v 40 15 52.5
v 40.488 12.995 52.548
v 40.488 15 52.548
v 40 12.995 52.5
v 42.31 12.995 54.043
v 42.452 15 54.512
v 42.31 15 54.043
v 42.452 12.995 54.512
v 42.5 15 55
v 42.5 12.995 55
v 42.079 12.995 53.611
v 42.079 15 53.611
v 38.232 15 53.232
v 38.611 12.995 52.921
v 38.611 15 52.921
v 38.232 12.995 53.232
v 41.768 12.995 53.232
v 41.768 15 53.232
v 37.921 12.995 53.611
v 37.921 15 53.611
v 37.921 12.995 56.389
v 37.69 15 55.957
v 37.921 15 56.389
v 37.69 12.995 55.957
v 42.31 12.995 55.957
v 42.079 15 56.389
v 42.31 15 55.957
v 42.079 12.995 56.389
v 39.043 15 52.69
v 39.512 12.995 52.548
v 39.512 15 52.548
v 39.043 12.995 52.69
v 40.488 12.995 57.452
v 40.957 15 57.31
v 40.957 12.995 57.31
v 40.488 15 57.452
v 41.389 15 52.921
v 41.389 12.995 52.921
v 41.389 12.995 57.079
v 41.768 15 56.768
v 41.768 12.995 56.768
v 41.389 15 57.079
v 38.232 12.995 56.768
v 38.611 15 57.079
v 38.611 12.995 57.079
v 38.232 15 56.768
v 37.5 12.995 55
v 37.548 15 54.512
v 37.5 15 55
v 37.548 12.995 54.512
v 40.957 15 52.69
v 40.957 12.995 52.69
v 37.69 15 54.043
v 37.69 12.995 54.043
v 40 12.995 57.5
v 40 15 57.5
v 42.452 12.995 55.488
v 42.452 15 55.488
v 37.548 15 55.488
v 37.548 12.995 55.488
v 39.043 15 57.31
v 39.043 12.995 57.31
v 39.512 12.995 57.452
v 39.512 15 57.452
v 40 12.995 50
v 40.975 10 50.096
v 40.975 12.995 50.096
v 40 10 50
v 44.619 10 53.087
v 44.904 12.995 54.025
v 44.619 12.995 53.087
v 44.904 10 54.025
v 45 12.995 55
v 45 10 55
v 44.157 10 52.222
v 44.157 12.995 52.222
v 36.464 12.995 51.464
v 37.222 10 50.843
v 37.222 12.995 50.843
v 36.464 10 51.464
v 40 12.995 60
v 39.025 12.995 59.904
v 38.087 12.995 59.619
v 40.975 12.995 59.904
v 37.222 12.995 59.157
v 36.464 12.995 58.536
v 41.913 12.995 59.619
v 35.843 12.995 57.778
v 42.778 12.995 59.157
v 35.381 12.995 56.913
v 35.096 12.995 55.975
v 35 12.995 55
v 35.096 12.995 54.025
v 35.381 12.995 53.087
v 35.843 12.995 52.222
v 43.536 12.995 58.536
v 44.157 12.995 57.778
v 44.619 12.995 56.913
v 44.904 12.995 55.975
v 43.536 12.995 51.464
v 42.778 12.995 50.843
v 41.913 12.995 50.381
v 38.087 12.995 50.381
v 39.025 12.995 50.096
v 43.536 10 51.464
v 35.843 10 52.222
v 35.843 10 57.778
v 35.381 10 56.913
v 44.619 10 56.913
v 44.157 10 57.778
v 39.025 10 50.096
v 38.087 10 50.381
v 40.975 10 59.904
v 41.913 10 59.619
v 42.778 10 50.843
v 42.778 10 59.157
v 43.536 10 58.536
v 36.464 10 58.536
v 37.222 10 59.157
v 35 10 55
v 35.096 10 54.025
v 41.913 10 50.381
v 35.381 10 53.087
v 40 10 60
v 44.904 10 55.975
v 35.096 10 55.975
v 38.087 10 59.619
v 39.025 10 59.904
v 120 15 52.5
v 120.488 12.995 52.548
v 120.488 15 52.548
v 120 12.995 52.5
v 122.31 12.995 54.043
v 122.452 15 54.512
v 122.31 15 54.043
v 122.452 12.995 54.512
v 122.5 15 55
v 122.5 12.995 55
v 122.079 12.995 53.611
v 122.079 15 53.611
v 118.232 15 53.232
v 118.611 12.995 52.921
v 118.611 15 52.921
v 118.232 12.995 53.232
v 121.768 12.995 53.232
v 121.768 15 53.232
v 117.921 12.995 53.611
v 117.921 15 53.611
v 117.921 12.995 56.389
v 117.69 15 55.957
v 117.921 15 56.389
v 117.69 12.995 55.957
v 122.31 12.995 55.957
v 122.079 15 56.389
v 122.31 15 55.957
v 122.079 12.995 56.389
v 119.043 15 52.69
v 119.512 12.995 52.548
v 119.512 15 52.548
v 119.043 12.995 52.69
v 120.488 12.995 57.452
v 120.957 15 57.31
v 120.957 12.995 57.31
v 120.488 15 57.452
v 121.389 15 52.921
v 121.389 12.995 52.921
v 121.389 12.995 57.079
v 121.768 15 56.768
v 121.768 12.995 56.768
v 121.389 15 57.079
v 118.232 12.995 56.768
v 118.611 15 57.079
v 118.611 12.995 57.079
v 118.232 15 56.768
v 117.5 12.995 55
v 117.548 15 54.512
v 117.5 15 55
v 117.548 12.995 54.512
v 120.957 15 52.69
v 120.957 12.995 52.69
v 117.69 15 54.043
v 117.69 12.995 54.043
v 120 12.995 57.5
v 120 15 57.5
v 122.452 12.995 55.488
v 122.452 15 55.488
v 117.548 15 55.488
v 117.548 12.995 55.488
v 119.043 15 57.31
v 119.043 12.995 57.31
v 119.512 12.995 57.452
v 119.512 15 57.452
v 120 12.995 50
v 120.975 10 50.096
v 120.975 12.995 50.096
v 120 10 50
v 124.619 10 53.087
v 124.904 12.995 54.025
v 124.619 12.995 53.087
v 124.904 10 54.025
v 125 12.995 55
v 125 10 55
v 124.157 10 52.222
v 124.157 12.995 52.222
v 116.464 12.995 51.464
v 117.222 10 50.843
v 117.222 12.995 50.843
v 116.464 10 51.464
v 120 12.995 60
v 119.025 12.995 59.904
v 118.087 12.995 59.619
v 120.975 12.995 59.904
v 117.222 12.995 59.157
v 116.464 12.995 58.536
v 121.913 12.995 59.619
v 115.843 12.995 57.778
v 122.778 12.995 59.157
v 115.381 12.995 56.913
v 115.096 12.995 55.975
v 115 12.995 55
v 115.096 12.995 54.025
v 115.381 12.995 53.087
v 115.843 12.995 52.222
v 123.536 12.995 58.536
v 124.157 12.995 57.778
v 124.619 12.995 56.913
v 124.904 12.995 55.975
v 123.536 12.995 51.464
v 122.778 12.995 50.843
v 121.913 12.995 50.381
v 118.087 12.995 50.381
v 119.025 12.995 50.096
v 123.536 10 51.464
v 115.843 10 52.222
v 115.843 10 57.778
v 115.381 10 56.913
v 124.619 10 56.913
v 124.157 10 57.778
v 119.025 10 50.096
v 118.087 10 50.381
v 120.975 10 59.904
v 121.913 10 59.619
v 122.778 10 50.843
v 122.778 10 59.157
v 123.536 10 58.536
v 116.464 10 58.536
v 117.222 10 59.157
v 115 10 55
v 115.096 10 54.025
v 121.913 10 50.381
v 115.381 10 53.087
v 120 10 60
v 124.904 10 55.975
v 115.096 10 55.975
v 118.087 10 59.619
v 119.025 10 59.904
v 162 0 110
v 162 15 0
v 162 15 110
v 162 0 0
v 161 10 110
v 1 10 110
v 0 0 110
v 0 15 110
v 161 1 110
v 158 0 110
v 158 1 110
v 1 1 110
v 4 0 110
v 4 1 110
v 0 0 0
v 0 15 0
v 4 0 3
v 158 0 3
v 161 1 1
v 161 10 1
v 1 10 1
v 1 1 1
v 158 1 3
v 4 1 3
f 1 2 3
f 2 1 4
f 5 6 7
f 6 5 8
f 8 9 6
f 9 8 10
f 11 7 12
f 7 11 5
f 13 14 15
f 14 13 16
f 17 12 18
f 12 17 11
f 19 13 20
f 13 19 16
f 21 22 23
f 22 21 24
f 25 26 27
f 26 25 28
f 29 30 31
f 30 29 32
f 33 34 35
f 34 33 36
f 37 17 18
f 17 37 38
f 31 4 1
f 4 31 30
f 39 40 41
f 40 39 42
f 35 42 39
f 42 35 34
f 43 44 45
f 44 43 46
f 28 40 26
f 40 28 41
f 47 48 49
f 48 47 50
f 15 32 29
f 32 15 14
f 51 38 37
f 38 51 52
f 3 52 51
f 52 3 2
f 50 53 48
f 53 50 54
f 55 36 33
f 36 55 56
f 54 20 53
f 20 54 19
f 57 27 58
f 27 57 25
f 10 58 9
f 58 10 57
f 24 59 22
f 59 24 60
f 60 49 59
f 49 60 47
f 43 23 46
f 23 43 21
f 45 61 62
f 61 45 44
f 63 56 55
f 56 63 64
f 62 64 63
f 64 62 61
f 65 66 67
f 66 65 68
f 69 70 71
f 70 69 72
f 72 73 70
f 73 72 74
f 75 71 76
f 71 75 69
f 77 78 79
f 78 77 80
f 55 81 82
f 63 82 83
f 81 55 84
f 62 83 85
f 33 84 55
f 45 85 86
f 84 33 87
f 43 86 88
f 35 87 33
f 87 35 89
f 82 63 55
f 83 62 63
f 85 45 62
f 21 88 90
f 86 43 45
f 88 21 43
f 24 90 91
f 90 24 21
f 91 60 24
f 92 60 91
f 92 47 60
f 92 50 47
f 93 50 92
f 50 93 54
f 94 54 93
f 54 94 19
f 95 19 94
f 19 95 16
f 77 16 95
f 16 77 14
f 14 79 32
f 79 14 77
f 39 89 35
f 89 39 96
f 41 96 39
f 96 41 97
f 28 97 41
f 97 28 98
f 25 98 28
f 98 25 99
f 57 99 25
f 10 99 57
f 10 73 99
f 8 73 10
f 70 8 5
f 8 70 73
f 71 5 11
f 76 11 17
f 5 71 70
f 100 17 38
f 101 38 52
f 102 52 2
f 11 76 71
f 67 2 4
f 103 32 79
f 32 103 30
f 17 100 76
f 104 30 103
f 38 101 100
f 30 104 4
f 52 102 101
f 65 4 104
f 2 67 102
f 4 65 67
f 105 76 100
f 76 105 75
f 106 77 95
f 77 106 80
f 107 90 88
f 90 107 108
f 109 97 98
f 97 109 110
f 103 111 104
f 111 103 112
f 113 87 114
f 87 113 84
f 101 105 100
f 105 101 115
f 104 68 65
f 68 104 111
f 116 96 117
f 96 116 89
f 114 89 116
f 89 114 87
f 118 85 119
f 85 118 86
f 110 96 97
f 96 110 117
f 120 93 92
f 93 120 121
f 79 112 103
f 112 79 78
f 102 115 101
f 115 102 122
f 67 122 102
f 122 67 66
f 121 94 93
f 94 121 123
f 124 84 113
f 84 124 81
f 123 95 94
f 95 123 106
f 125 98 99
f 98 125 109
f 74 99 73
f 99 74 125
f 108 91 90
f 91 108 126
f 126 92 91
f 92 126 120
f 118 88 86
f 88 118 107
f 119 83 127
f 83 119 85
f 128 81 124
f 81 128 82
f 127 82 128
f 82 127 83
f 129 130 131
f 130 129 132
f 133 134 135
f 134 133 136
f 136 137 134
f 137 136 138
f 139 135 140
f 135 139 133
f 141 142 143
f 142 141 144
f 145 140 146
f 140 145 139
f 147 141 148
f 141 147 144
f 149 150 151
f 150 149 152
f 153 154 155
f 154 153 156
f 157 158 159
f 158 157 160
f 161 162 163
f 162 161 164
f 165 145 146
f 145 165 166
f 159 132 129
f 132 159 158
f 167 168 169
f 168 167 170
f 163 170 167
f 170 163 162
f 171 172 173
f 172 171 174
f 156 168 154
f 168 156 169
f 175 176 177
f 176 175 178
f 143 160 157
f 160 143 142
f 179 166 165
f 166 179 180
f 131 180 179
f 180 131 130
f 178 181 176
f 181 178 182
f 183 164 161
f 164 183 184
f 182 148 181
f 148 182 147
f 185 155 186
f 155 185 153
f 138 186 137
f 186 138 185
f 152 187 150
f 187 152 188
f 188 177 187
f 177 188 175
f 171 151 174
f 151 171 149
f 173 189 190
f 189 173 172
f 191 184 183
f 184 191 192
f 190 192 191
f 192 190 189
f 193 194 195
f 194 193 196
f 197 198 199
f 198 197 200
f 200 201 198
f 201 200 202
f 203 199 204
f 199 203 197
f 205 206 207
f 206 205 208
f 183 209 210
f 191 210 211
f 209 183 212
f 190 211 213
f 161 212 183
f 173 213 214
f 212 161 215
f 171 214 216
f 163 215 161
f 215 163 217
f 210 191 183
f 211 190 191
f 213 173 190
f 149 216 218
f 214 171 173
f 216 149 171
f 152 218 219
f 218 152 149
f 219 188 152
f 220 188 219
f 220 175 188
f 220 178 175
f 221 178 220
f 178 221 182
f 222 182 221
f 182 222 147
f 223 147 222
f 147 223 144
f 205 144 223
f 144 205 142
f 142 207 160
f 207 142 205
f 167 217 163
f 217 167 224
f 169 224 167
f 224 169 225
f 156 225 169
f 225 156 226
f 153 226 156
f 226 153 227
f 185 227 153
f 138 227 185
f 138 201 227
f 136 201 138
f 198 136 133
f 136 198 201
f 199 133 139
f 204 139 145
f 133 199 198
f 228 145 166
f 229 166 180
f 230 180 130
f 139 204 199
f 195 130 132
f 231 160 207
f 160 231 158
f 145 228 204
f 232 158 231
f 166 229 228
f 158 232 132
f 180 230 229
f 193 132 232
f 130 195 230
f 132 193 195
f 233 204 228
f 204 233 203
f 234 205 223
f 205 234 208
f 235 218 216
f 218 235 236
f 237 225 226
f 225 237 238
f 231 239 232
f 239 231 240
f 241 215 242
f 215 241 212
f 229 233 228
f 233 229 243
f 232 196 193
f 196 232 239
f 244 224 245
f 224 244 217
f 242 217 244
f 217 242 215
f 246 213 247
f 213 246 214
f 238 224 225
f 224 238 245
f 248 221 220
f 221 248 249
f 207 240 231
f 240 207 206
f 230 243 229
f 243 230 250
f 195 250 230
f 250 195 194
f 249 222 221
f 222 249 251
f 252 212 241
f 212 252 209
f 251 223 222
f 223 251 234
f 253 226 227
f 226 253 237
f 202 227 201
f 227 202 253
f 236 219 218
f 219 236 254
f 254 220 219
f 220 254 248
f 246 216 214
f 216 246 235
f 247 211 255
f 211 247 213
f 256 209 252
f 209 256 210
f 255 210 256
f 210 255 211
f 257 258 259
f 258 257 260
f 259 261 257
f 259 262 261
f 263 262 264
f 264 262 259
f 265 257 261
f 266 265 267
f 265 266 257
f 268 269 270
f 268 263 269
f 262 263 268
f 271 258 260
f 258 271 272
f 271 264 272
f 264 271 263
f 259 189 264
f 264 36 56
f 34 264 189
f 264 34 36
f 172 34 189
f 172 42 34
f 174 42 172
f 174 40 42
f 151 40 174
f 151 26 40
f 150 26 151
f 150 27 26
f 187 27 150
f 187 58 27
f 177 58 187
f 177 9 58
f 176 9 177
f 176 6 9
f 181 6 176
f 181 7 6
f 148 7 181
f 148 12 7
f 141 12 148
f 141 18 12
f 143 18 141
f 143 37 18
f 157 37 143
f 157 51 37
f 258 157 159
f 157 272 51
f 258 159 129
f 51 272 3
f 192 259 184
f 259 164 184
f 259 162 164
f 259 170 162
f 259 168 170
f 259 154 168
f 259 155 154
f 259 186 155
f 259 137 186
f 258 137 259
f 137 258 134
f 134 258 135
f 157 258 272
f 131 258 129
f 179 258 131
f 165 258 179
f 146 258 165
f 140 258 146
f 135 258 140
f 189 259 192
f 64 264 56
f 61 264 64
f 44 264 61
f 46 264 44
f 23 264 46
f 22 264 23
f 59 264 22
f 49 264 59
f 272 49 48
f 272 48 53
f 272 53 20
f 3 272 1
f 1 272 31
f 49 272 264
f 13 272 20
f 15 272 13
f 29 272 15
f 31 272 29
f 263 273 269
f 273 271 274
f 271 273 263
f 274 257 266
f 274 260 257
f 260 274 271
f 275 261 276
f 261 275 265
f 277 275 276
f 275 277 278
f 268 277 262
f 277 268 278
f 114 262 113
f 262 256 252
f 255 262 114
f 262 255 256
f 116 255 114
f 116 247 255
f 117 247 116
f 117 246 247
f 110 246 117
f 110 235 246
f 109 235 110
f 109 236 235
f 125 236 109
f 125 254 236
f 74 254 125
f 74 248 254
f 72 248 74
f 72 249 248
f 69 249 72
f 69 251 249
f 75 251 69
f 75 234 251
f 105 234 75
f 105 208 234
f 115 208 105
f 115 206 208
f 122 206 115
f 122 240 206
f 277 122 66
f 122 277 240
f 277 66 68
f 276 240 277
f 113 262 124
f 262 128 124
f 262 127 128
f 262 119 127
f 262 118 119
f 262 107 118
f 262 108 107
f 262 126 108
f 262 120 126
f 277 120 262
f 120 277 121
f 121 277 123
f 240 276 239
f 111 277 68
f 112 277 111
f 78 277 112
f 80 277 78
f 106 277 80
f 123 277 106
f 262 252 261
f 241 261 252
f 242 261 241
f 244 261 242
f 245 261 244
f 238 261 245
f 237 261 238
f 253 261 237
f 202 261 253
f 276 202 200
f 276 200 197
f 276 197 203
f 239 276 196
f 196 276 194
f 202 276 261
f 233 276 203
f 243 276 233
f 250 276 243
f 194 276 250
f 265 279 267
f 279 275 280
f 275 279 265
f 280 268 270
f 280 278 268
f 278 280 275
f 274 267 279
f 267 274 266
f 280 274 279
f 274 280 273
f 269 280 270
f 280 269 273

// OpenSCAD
tablet_width = 160;
tablet_thickness = 9;
tablet_holder_height = 110;

eps = 0.01;

wall_thickness = 1;
base_wall_thickness = 5;
front_overlap = 3;

hole_diameter = 5;
hole_head_diameter = 10;
hole_head_height = 3;

$fn = 32;

module outer() {
    cube([tablet_width + 2 * wall_thickness,
                tablet_thickness + wall_thickness + base_wall_thickness,
            tablet_holder_height
        ]);
}

module tablet() {
    cube([tablet_width, tablet_thickness, tablet_holder_height + eps]);
}
module opening_front() {
    translate([front_overlap + wall_thickness, -eps, front_overlap]) {
        cube([tablet_width - 2 * front_overlap, wall_thickness + 2 * eps, tablet_holder_height - front_overlap + eps]);
    }
}

module screw_hole(x, y) {
    translate([x, 0, y])
    rotate([-90, 0, 0])
    union() {
        translate([0, 0, wall_thickness + tablet_thickness + base_wall_thickness / 2]) {
            cylinder(h = base_wall_thickness + 2 * eps, d = hole_diameter, center = true);
        }
        translate([0, 0, tablet_thickness + wall_thickness + hole_head_height / 2 - eps]) {
            cylinder(h = hole_head_height + eps, d = hole_head_diameter, center = true);
        }
    }
}

module screw_holes() {
    screw_hole(tablet_width * 0.25, tablet_holder_height * 0.5);
    screw_hole(tablet_width * 0.75, tablet_holder_height * 0.5);
}

difference() {
    outer();
    {
        translate([wall_thickness, wall_thickness, wall_thickness]) {
            tablet();
        }
        opening_front();
        screw_holes();
    }
};
